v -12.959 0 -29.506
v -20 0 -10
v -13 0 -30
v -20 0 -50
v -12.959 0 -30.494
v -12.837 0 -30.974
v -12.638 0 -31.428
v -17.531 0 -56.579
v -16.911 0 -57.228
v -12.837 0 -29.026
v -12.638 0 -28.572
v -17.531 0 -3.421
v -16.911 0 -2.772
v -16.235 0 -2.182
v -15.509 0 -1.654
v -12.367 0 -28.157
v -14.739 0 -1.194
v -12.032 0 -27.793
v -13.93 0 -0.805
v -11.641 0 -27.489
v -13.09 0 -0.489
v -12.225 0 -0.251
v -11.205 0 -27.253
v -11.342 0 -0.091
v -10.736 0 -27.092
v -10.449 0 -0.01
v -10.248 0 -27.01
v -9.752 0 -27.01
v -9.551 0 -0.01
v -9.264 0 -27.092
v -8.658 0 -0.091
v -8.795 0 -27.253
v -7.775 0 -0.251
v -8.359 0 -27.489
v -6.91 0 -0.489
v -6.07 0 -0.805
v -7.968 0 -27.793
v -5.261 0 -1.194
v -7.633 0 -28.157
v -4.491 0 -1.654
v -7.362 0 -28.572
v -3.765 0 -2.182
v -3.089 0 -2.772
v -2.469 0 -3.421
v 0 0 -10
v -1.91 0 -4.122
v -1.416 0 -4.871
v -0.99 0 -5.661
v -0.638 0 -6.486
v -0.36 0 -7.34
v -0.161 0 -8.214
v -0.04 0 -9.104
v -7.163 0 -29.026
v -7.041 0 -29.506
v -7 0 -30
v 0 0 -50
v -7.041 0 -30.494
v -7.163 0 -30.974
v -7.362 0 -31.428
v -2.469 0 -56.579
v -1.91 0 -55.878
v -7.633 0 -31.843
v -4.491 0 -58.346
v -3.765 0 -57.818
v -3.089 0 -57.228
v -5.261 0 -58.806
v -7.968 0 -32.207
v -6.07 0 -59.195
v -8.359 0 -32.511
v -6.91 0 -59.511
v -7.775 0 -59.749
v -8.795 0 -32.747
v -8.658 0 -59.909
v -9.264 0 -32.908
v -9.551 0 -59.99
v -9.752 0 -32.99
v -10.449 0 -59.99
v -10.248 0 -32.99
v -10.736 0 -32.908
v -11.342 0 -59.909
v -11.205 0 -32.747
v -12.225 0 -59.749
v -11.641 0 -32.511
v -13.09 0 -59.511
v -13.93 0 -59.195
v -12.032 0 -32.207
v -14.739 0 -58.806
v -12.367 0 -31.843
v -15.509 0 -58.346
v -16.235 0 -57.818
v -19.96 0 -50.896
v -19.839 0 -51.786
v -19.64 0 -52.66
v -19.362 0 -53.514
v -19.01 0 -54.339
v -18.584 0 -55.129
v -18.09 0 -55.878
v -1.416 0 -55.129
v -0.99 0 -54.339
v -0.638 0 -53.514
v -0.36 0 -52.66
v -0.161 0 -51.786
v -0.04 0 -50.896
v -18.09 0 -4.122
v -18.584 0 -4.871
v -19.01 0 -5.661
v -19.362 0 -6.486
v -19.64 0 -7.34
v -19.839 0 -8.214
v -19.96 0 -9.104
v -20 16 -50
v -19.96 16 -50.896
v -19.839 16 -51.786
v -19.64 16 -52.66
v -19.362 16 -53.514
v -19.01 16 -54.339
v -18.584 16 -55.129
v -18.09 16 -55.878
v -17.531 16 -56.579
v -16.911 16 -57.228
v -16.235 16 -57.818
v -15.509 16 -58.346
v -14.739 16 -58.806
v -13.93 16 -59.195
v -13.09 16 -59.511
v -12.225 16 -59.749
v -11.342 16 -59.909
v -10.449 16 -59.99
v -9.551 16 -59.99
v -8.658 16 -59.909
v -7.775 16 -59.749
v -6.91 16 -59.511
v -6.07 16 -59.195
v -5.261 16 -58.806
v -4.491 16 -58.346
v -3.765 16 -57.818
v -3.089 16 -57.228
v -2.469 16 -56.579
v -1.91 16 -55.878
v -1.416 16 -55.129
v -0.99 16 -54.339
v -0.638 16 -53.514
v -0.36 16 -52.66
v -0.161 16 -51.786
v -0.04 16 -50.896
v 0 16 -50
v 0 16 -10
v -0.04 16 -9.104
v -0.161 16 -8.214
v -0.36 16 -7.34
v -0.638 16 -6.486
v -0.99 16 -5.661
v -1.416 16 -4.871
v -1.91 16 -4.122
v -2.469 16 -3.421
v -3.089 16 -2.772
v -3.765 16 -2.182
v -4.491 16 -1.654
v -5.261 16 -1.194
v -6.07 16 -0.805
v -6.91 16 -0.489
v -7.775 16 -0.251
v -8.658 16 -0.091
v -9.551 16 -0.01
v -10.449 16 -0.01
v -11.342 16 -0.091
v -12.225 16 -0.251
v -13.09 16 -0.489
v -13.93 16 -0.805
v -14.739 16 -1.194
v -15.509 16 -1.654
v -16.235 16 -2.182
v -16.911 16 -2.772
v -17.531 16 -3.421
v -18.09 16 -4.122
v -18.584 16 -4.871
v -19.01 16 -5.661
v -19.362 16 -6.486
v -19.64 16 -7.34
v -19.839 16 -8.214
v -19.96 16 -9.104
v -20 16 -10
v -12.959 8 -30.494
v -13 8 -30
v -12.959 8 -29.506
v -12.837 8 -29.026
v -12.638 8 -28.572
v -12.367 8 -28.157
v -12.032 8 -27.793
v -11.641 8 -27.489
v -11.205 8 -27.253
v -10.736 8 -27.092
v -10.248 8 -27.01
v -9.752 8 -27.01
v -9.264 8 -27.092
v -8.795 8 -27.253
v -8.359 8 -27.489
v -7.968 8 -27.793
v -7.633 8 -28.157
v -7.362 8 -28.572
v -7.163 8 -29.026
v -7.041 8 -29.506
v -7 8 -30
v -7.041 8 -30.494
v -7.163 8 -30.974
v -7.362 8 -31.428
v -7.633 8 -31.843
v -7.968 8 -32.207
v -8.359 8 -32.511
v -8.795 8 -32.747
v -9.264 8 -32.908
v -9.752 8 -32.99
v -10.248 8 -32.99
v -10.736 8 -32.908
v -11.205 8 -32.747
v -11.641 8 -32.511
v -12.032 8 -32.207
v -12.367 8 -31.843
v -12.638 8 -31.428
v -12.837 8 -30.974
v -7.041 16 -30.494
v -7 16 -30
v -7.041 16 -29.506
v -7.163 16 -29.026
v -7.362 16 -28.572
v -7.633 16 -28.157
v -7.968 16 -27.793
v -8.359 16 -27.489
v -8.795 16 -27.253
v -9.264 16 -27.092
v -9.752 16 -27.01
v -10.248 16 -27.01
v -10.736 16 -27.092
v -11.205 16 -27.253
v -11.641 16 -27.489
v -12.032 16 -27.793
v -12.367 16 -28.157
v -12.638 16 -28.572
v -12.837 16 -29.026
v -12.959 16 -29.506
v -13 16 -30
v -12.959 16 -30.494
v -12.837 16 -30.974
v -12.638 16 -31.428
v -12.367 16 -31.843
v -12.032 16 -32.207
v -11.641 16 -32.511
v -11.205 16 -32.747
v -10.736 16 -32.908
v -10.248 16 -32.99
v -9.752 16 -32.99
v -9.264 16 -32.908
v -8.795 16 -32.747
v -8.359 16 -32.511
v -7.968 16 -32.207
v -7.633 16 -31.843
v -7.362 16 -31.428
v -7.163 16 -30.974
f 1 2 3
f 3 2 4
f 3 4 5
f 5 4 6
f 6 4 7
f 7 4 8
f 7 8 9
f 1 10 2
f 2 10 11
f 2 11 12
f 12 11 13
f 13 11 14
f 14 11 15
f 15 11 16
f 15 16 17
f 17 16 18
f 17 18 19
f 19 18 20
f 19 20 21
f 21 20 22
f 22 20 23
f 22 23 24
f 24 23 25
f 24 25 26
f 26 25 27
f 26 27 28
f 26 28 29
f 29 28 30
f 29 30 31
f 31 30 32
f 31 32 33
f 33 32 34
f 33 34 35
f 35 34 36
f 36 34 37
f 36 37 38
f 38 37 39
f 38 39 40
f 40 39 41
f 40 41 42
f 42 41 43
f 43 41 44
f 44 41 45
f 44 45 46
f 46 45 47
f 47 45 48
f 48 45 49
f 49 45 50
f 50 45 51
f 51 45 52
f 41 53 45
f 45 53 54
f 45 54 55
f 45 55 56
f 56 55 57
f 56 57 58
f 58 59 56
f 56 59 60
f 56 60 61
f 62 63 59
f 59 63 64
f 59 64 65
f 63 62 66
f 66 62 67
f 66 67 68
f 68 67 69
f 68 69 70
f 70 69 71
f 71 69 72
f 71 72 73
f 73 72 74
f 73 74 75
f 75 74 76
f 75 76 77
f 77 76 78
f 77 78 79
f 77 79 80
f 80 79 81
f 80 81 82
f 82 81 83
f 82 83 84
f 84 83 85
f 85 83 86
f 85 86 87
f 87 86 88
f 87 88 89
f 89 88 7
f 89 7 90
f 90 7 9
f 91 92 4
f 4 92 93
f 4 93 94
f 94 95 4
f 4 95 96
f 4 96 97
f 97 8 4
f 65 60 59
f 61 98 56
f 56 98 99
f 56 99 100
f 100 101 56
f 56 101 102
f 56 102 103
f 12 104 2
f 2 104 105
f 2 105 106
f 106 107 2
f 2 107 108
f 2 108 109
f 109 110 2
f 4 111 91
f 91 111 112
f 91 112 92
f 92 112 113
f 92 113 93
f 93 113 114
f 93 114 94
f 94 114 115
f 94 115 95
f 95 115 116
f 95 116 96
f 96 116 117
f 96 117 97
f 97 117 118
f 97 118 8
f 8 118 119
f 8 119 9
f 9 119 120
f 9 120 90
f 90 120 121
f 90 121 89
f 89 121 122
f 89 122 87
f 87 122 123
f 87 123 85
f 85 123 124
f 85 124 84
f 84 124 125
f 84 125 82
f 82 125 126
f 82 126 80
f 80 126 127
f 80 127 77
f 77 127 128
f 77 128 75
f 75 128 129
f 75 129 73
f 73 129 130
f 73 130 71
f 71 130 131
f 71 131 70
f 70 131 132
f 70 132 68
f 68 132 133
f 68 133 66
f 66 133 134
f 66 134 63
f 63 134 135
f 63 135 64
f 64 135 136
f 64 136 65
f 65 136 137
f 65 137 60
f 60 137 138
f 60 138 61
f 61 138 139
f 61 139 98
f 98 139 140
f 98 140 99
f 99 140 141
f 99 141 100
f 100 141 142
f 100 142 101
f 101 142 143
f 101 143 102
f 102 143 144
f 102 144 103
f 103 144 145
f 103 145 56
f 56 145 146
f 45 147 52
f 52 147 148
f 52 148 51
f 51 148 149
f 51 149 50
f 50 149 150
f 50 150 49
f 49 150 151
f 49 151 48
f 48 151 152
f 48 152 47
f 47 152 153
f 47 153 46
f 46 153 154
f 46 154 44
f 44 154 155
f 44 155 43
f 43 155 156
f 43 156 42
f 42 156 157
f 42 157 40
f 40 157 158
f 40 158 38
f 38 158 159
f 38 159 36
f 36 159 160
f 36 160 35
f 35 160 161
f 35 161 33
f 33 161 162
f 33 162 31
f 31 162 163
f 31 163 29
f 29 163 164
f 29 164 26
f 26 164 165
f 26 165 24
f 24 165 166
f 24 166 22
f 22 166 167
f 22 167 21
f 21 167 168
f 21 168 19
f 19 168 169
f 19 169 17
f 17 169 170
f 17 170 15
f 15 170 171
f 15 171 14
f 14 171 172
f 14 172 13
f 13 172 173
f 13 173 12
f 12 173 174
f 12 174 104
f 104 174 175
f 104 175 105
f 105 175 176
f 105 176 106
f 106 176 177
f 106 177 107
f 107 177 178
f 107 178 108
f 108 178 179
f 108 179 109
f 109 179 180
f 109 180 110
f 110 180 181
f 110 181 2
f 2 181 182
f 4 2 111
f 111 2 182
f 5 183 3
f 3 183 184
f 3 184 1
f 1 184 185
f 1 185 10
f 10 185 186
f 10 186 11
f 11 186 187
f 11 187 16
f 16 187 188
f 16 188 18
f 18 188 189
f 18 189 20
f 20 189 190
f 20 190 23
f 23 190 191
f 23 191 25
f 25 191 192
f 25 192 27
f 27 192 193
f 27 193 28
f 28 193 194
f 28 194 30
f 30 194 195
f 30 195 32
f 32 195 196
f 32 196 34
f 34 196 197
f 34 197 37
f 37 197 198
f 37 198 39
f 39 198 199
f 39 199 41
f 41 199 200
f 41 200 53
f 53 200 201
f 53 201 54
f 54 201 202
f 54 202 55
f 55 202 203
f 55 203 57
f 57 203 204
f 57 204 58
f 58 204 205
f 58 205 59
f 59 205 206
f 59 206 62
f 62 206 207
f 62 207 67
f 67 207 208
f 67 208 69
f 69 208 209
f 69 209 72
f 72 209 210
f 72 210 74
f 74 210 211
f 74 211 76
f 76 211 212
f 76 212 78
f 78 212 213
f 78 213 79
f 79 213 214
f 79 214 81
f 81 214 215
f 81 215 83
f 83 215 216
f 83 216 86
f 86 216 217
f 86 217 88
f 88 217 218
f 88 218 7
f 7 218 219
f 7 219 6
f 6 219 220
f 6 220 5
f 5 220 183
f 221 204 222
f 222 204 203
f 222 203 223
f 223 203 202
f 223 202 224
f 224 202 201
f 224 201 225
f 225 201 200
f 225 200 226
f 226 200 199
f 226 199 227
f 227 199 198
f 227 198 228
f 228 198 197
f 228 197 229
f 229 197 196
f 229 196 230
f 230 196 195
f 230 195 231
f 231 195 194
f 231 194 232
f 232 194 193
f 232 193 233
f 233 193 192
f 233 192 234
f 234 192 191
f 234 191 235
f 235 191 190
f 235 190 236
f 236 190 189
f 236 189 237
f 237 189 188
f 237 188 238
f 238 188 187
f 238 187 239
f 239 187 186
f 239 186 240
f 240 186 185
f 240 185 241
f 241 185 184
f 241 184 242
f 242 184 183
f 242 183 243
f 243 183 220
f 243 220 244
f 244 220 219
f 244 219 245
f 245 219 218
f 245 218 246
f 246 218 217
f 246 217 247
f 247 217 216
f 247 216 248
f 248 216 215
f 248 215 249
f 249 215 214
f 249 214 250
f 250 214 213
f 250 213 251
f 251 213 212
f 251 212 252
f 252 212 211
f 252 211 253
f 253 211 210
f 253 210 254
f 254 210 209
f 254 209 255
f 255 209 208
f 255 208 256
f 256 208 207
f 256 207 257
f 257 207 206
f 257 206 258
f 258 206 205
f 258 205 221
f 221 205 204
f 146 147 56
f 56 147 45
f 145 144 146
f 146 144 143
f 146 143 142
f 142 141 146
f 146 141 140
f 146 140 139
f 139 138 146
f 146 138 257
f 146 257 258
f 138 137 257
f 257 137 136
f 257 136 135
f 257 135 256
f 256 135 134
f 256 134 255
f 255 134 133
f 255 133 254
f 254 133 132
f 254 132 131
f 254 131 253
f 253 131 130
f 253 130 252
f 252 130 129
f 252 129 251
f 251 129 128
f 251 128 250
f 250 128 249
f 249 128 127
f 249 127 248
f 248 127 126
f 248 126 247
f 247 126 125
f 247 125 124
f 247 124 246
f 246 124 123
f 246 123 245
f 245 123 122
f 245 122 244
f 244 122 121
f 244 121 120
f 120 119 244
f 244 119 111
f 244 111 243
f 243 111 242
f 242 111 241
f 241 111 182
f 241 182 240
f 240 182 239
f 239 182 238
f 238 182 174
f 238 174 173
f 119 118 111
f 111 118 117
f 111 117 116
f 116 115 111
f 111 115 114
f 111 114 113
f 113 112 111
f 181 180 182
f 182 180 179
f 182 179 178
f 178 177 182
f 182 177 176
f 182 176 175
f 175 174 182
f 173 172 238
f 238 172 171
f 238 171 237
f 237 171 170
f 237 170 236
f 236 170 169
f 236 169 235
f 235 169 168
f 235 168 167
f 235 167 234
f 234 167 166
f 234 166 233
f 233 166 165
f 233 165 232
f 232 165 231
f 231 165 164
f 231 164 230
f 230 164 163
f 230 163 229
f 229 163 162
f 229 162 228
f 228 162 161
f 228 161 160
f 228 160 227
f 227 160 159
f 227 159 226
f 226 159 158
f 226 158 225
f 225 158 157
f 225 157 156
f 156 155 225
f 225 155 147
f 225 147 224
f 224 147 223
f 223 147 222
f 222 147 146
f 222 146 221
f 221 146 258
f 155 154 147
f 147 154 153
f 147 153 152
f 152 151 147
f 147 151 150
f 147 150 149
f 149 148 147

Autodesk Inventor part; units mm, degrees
ref_plane "YZ Plane" through (0, 0, 0) normal (1, 0, 0) x (0, 1, 0)
ref_plane "XZ Plane" through (0, 0, 0) normal (0, 1, 0) x (-1, 0, 0)
ref_plane "XY Plane" through (0, 0, 0) normal (0, 0, 1) x (1, 0, 0)
sketch "Sketch1" plane through (0, 0, 0) normal (0, 1, 0) x (-1, 0, 0)
  line L0 (0, 0) -> (20, 0)
  line L1 (20, 0) -> (20, -60)
  line L2 (20, -60) -> (0, -60)
  line L3 (0, -60) -> (0, 0)
  dimension "d0" = 60
  dimension "d1" = 20
extrude "Extrusion1" add sketch "Sketch1" along normal blind 16
sketch "Sketch2" plane through (0, 16, 0) normal (0, 1, 0) x (1, 0, 0)
  line L0 (-20, 60) -> (-20, 0) projected
  line L1 (0, 60) -> (-20, 60) projected
  point P0 (0, 0)
  point P1 (-10, 30)
  point P2 (-20, 30)
  point P3 (-10, 60)
  dimension "d5" = 10
  dimension "d6" = 30
hole "Hole1" at (-10, 16, -30) direction (0, -1, 0) diameter 6 end through all
fillet "Fillet1" radius 10 4 edges at (-20, 8, 0) (0, 8, 0) (0, 8, -60) (-20, 8, -60)
properties part number "Base_Plate_Spacer_3DPrint"
